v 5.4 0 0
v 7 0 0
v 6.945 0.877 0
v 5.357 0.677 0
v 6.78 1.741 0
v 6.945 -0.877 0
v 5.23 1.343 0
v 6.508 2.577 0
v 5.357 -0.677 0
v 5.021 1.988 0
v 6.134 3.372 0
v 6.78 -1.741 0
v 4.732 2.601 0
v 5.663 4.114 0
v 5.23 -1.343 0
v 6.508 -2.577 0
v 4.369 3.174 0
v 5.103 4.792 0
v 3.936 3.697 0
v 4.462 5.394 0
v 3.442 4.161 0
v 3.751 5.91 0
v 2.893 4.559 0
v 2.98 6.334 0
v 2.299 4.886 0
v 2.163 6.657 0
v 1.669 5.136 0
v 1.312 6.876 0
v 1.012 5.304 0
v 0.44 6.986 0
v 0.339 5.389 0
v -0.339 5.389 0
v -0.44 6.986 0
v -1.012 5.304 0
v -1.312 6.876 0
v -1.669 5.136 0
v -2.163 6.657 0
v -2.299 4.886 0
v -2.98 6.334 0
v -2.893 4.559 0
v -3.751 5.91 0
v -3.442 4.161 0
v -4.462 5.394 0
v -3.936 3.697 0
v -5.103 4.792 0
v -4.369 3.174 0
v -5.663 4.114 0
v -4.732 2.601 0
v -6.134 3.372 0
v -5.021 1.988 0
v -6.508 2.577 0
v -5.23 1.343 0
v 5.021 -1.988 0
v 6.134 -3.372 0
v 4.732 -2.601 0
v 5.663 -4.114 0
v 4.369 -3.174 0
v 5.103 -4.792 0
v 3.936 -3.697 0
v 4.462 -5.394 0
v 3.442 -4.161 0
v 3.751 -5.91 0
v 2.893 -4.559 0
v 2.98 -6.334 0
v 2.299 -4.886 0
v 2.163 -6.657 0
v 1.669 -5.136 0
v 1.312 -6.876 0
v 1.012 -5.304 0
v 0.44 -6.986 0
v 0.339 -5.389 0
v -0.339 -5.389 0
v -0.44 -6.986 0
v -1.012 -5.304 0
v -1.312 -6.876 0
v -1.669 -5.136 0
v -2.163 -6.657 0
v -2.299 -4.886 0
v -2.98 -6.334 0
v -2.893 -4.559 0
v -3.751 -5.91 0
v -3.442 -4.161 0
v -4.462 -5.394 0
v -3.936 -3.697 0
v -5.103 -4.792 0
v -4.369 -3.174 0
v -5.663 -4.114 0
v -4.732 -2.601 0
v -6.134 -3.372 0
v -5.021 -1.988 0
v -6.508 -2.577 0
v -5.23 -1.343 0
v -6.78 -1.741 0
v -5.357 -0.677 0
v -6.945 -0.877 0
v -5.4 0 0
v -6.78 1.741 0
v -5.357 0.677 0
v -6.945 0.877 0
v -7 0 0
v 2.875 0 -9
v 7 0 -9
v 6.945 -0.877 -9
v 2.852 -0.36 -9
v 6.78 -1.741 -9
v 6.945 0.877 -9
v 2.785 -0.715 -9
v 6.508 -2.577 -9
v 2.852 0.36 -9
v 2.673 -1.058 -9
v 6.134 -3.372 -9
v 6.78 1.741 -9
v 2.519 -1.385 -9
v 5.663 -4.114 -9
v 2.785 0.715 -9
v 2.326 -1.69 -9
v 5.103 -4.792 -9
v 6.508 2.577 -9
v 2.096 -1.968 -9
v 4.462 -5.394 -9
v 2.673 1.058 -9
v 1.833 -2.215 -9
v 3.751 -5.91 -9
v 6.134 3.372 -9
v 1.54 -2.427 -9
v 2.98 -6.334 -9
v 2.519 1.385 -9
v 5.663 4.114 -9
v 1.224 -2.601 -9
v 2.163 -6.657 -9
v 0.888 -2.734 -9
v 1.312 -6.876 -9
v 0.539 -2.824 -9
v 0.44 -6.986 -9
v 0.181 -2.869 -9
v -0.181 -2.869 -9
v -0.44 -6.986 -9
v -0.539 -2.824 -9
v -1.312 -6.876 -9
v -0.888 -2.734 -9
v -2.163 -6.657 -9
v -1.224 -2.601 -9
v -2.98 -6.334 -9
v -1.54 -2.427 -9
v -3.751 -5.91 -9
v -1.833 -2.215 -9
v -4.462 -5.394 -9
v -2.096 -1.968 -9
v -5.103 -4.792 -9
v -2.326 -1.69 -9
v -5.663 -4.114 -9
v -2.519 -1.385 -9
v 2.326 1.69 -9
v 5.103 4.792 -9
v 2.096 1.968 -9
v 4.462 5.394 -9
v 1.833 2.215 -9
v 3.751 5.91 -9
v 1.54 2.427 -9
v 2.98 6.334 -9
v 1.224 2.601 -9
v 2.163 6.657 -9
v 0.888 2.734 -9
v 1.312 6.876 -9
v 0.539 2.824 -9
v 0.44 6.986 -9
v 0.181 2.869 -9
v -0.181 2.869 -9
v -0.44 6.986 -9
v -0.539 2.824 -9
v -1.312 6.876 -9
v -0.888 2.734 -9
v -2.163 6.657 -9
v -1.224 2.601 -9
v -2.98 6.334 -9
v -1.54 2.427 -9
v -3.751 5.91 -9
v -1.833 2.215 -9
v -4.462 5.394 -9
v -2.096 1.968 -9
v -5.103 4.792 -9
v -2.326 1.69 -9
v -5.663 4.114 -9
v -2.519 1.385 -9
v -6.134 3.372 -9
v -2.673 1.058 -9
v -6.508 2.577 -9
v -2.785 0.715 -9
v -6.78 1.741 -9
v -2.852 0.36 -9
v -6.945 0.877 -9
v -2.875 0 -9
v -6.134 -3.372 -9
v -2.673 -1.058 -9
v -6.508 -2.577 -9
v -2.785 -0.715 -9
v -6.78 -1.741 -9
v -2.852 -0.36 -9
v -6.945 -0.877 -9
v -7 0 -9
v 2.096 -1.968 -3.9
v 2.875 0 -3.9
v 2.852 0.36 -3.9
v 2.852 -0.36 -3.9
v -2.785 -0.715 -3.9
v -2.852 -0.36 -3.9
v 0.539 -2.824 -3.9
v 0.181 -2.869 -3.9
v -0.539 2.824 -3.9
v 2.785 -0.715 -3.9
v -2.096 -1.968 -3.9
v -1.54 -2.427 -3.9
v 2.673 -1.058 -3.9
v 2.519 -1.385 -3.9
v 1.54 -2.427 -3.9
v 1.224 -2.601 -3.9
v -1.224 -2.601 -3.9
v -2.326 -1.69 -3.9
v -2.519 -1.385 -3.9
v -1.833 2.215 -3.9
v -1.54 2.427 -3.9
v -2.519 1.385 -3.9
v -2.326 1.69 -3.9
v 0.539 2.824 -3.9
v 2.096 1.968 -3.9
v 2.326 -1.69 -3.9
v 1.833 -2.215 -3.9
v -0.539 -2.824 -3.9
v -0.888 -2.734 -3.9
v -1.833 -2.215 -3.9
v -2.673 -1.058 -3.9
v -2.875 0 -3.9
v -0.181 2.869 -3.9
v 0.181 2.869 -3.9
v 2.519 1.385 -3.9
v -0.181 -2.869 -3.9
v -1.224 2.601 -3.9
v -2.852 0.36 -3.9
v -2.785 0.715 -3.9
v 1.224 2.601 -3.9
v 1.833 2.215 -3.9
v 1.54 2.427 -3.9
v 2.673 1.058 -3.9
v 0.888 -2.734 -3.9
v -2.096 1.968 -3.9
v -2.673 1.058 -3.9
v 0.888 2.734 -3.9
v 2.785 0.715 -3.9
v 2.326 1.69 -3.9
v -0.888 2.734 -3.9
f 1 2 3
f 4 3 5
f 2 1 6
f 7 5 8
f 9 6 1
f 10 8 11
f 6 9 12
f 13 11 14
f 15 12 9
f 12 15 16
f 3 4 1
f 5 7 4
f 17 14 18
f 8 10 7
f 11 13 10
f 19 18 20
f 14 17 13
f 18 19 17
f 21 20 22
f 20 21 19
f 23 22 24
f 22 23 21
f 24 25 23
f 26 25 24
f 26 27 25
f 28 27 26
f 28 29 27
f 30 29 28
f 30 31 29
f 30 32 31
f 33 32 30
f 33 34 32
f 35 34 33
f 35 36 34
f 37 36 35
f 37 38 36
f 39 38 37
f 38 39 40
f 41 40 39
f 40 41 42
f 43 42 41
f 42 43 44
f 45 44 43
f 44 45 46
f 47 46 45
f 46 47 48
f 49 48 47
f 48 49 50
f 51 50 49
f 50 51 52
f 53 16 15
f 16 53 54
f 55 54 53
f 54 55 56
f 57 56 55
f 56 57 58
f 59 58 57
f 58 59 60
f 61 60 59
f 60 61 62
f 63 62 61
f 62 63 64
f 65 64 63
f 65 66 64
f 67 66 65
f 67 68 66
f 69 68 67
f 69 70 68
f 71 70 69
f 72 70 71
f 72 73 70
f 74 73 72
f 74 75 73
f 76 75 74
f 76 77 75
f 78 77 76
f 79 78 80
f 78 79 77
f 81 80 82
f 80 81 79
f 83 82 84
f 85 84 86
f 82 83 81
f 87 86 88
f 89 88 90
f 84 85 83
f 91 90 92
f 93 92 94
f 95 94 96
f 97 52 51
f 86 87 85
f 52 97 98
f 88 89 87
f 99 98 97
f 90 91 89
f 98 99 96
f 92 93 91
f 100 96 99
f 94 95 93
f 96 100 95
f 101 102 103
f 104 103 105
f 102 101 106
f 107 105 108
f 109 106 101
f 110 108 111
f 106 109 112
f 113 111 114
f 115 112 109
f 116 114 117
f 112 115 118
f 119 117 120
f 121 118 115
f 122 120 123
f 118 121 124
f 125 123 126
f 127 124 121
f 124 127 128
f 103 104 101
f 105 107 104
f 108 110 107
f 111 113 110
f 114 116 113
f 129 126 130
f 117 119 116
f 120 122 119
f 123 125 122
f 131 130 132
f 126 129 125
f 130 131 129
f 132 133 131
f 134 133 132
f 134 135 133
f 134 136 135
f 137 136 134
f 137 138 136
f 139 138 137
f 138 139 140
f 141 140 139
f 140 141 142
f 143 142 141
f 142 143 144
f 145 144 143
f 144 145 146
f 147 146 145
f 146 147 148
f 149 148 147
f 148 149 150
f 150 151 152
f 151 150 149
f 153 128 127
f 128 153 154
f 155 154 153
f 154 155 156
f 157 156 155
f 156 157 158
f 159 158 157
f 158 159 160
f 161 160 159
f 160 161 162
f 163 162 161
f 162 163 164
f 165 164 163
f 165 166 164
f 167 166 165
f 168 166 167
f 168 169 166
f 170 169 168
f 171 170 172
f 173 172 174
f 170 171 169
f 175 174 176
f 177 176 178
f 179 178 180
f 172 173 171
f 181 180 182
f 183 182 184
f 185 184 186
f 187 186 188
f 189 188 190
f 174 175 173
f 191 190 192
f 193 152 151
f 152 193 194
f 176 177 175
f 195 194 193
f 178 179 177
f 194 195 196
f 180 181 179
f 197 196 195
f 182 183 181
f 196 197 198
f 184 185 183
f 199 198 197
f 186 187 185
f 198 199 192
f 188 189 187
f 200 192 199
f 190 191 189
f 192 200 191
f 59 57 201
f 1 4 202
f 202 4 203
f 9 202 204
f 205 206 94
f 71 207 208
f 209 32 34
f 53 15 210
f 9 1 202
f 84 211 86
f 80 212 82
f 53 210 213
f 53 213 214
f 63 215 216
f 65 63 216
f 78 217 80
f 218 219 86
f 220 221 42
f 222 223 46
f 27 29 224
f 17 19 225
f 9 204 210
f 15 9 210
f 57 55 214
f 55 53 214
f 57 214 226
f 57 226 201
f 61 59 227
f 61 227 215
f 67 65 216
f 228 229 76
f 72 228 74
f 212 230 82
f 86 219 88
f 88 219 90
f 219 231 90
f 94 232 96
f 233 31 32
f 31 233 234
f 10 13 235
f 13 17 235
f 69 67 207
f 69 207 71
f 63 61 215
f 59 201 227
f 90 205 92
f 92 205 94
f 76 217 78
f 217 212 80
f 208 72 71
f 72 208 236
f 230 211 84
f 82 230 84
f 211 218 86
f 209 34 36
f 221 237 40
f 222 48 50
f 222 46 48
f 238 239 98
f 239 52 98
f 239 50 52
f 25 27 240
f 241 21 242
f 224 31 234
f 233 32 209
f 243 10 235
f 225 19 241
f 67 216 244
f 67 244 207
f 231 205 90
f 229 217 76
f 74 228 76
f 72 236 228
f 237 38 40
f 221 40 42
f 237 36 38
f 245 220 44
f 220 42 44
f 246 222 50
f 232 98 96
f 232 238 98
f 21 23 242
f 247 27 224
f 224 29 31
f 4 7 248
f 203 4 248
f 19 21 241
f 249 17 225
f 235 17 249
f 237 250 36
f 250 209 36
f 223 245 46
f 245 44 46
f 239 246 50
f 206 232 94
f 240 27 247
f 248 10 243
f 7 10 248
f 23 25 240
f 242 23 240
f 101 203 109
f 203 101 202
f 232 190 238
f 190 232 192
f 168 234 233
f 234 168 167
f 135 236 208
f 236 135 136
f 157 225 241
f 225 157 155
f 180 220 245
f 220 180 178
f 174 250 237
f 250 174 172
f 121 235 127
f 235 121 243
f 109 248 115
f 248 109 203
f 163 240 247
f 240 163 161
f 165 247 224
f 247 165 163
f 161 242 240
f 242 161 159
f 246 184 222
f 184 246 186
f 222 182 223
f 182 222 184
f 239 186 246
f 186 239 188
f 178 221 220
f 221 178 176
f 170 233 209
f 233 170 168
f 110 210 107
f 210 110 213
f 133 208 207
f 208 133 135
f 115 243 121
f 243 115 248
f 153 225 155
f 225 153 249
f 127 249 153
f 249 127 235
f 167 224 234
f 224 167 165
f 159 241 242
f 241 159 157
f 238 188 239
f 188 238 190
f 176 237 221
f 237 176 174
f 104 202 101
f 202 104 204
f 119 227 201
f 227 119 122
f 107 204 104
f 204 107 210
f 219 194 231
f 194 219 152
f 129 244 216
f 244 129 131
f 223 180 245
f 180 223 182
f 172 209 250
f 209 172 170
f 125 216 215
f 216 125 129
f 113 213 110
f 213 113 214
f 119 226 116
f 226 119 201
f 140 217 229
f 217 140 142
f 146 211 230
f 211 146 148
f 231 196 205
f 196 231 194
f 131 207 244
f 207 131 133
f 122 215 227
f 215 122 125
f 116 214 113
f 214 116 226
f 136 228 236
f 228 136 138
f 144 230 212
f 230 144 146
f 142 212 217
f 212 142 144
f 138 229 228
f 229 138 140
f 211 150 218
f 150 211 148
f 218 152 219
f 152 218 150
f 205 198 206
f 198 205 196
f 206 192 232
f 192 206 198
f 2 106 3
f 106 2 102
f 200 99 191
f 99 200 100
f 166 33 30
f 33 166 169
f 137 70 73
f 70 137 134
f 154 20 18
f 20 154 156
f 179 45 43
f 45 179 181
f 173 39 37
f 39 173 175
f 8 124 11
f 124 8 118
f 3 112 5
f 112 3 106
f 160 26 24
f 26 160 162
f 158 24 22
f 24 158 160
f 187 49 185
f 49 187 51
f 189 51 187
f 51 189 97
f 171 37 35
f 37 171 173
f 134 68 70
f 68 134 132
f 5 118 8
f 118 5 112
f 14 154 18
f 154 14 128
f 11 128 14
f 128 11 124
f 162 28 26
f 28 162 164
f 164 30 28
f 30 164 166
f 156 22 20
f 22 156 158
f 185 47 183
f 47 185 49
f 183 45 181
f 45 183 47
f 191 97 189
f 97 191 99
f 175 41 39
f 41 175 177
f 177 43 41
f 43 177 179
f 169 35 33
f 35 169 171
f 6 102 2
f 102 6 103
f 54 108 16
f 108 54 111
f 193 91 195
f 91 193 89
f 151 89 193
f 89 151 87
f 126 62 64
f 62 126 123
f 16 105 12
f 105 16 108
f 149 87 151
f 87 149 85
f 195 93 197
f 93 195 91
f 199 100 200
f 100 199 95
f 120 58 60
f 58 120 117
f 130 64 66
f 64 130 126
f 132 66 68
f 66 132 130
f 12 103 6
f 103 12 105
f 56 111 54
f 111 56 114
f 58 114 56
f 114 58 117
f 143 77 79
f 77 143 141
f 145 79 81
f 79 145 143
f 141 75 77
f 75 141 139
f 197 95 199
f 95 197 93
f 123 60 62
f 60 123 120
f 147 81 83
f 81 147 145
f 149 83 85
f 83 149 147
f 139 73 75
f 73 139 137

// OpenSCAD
$fn = 50;


difference() {
	union() {
		translate(v = [0, 0, -9.0000000000]) {
			cylinder(h = 9, r = 7.0000000000);
		}
	}
	union() {
		translate(v = [0, 0, 0]) {
			rotate(a = [0, 0, 0]) {
				difference() {
					union() {
						#translate(v = [0, 0, -9.0000000000]) {
							cylinder(h = 9, r = 2.6000000000);
						}
						#translate(v = [0, 0, -3.9000000000]) {
							cylinder(h = 3.9000000000, r1 = 2.8750000000, r2 = 5.4000000000);
						}
						#translate(v = [0, 0, -9.0000000000]) {
							cylinder(h = 9, r = 2.8750000000);
						}
						#translate(v = [0, 0, -9.0000000000]) {
							cylinder(h = 9, r = 2.6000000000);
						}
					}
					union();
				}
			}
		}
	}
}
